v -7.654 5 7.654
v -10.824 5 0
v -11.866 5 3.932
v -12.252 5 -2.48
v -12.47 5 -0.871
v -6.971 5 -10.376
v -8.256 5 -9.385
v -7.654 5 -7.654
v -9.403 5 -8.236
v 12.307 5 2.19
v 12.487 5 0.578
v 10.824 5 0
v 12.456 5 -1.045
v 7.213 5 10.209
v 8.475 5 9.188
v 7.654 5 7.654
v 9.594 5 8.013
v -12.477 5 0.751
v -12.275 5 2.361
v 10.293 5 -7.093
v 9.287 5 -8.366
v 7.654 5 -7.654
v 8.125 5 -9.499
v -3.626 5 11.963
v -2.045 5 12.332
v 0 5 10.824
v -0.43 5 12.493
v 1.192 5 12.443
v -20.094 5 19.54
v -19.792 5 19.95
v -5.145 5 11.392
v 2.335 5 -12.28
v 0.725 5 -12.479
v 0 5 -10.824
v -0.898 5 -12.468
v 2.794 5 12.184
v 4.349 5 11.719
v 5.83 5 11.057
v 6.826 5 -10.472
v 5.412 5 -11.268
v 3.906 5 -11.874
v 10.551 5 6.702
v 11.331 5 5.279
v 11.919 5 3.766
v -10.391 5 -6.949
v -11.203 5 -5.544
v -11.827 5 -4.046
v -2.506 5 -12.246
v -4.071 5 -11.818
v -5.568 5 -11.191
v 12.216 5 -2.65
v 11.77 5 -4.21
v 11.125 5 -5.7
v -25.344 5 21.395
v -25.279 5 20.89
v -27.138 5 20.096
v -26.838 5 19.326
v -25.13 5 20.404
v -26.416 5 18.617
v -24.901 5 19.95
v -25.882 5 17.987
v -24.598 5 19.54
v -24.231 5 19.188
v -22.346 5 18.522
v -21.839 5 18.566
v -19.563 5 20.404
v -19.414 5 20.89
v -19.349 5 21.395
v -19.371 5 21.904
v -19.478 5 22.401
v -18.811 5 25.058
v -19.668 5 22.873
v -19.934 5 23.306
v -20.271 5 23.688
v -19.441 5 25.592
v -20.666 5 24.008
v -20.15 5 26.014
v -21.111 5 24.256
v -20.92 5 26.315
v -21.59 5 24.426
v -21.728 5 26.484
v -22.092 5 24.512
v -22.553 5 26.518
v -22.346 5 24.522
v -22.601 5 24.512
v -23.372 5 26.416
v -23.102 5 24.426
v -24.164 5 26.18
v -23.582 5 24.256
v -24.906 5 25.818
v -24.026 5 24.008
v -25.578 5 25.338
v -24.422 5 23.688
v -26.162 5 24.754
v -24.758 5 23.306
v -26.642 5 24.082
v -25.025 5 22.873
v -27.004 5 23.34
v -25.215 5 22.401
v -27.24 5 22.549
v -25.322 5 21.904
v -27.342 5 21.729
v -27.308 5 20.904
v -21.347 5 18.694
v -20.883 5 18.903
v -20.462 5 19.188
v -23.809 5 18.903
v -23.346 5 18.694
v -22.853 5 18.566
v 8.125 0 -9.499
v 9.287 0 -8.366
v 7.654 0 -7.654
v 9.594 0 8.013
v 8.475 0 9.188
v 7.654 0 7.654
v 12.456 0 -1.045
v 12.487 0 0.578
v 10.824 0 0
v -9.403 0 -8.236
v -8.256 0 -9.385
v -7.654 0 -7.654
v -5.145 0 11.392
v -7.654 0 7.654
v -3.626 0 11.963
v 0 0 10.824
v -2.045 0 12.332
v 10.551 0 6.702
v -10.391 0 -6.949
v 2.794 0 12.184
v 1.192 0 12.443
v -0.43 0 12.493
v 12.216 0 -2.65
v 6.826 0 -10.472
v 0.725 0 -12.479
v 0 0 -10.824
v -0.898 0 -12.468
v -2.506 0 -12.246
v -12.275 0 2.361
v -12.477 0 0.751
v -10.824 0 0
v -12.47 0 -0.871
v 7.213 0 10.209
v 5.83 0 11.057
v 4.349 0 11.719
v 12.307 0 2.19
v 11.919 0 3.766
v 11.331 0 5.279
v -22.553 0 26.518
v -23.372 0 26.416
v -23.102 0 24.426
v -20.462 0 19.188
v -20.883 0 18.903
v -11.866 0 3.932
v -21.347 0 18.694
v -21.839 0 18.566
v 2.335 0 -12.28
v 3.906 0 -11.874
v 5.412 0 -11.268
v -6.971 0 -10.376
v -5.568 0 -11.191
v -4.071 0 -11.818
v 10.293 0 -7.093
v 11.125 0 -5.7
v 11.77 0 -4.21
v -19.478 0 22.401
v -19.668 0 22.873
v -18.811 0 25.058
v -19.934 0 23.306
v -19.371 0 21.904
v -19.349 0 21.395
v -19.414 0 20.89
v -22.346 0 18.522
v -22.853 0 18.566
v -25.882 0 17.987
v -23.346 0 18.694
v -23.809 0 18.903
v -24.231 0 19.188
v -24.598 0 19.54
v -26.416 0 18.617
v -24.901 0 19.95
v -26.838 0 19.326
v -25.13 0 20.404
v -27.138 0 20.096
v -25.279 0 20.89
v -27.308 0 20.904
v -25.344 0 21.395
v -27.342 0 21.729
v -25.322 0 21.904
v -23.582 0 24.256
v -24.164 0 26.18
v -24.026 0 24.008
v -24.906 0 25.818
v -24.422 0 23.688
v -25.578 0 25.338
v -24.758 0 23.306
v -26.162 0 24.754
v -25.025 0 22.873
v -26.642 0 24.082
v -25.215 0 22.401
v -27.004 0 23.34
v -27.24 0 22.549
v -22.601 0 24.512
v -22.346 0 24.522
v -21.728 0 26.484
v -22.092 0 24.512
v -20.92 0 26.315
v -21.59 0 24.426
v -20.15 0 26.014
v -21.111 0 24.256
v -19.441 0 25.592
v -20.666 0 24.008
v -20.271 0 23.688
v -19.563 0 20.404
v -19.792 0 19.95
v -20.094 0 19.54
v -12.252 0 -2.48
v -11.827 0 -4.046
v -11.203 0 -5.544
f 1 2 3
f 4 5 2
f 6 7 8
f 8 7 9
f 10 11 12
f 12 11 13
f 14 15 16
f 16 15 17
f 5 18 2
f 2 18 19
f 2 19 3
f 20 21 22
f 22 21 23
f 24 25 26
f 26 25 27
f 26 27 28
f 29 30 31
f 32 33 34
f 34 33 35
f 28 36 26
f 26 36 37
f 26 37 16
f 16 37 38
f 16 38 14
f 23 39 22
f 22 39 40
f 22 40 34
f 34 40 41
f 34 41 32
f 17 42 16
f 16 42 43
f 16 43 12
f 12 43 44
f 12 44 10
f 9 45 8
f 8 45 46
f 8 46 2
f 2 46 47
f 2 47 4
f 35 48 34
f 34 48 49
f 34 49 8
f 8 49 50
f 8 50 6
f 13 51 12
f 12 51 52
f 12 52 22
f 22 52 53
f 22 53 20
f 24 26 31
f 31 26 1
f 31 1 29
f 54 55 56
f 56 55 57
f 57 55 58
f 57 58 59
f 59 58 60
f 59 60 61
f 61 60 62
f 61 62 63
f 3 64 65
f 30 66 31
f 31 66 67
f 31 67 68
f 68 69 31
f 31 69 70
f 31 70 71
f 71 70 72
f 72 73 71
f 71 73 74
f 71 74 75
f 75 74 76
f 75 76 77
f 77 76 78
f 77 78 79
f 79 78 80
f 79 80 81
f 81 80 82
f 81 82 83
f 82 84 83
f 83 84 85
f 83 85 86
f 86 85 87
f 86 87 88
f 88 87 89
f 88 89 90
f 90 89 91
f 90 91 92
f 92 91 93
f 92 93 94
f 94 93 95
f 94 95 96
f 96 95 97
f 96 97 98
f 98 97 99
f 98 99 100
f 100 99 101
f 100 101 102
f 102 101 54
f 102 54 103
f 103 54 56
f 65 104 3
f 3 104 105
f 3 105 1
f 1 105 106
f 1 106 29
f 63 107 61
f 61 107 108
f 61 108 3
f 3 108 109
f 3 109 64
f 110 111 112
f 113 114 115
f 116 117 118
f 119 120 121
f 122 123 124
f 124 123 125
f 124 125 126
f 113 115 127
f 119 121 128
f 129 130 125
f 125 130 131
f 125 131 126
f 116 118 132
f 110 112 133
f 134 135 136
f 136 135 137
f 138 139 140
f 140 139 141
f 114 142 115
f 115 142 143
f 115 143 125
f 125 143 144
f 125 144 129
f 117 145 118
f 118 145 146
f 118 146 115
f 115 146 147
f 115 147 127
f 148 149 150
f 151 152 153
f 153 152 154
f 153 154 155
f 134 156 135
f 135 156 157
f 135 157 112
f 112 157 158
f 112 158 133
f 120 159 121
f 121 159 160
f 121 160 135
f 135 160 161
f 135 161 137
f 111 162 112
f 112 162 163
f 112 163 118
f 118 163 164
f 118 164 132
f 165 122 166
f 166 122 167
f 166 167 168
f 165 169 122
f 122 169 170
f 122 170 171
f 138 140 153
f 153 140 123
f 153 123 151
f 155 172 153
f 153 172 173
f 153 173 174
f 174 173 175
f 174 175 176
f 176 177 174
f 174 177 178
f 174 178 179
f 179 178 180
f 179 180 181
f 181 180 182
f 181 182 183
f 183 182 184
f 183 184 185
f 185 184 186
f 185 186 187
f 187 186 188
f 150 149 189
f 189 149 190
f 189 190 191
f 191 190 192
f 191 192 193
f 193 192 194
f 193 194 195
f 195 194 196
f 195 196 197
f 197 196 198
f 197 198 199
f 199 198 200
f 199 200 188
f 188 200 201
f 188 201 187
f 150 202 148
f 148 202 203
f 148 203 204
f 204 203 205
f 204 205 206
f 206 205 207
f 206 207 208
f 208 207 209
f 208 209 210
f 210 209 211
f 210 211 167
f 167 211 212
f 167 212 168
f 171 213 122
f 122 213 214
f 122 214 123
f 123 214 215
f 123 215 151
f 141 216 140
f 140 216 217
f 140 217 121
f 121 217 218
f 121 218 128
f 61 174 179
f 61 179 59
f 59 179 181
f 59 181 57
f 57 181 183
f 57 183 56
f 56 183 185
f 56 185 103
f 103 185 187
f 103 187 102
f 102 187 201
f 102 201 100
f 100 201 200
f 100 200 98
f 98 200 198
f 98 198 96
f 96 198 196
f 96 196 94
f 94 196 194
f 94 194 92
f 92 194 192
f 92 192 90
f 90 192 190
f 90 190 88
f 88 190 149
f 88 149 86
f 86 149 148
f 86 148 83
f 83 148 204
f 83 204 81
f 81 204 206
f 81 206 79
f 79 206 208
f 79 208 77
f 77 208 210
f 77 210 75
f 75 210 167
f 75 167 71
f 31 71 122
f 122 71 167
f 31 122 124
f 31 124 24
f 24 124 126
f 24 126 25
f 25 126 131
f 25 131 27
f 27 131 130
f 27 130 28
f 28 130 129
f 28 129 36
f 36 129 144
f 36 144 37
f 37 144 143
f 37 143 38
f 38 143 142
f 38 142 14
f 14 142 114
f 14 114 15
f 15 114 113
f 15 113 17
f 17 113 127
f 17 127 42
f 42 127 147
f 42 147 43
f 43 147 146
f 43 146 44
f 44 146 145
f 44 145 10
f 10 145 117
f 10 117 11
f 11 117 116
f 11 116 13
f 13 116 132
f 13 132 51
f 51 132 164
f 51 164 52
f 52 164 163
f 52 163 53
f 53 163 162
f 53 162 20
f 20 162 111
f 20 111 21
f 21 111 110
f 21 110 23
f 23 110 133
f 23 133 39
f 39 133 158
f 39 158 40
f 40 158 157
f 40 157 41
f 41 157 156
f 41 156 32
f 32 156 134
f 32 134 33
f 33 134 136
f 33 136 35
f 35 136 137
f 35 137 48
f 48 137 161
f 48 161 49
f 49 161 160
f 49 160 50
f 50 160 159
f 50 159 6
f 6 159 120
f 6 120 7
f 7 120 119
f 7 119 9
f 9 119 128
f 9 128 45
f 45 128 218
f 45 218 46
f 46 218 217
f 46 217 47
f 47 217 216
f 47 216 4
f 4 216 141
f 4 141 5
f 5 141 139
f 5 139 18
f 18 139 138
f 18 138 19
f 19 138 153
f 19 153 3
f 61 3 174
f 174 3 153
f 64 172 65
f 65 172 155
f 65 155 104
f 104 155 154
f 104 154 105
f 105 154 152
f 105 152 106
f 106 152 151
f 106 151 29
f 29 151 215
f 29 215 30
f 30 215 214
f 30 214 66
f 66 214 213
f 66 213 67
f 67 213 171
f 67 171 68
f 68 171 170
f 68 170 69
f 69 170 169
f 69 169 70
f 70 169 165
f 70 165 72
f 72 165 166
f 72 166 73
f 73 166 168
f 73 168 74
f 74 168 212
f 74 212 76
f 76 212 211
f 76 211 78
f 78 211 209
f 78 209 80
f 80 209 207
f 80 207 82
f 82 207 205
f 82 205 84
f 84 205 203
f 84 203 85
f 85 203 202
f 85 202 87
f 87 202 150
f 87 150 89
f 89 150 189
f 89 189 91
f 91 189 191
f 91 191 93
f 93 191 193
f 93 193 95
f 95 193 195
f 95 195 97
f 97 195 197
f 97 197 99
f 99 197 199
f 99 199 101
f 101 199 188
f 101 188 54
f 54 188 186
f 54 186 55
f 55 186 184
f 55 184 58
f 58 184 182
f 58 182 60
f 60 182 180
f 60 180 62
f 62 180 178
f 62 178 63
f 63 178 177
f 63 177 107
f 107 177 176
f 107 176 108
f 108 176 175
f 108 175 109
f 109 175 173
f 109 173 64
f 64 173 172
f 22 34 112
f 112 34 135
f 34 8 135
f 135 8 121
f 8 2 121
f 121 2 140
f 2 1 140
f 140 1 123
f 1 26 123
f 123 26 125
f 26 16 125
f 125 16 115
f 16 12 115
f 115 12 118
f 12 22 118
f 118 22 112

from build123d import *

# Parameters (mm, degrees)
SKETCH1_R           = 3
BOSS_EXTRUDE1_DEPTH = 5


with BuildPart() as part:
    # Sketch1 → Boss-Extrude1 (new body)
    with BuildSketch(Plane(origin=(0, 0, 0), x_dir=(1, 0, 0), z_dir=(0, 1, 0))):
        with BuildLine():
            Line((-25.881865259, -17.986942888), (-11.865528355, -3.931823604))
            ThreePointArc((-11.865528355, -3.931823604), (9.287225619, 8.366447293), (-5.144892732, -11.392105985))
            Line((-5.144892732, -11.392105985), (-18.810797447, -25.0580107))
            ThreePointArc((-18.810797447, -25.0580107), (-25.881865259, -25.0580107), (-25.881865259, -17.986942888))
        make_face()
        with Locations(Location((-22.346331353, -21.522476794, 0), (0, 0, 270))):
            Circle(SKETCH1_R, mode=Mode.SUBTRACT)
        Polygon((0, 10.823922003), (-7.653668647, 7.653668647), (-10.823922003, 0), (-7.653668647, -7.653668647), (0, -10.823922003), (7.653668647, -7.653668647), (10.823922003, 0), (7.653668647, 7.653668647), align=None, mode=Mode.SUBTRACT)
    extrude(amount=BOSS_EXTRUDE1_DEPTH)


solid = part.part
